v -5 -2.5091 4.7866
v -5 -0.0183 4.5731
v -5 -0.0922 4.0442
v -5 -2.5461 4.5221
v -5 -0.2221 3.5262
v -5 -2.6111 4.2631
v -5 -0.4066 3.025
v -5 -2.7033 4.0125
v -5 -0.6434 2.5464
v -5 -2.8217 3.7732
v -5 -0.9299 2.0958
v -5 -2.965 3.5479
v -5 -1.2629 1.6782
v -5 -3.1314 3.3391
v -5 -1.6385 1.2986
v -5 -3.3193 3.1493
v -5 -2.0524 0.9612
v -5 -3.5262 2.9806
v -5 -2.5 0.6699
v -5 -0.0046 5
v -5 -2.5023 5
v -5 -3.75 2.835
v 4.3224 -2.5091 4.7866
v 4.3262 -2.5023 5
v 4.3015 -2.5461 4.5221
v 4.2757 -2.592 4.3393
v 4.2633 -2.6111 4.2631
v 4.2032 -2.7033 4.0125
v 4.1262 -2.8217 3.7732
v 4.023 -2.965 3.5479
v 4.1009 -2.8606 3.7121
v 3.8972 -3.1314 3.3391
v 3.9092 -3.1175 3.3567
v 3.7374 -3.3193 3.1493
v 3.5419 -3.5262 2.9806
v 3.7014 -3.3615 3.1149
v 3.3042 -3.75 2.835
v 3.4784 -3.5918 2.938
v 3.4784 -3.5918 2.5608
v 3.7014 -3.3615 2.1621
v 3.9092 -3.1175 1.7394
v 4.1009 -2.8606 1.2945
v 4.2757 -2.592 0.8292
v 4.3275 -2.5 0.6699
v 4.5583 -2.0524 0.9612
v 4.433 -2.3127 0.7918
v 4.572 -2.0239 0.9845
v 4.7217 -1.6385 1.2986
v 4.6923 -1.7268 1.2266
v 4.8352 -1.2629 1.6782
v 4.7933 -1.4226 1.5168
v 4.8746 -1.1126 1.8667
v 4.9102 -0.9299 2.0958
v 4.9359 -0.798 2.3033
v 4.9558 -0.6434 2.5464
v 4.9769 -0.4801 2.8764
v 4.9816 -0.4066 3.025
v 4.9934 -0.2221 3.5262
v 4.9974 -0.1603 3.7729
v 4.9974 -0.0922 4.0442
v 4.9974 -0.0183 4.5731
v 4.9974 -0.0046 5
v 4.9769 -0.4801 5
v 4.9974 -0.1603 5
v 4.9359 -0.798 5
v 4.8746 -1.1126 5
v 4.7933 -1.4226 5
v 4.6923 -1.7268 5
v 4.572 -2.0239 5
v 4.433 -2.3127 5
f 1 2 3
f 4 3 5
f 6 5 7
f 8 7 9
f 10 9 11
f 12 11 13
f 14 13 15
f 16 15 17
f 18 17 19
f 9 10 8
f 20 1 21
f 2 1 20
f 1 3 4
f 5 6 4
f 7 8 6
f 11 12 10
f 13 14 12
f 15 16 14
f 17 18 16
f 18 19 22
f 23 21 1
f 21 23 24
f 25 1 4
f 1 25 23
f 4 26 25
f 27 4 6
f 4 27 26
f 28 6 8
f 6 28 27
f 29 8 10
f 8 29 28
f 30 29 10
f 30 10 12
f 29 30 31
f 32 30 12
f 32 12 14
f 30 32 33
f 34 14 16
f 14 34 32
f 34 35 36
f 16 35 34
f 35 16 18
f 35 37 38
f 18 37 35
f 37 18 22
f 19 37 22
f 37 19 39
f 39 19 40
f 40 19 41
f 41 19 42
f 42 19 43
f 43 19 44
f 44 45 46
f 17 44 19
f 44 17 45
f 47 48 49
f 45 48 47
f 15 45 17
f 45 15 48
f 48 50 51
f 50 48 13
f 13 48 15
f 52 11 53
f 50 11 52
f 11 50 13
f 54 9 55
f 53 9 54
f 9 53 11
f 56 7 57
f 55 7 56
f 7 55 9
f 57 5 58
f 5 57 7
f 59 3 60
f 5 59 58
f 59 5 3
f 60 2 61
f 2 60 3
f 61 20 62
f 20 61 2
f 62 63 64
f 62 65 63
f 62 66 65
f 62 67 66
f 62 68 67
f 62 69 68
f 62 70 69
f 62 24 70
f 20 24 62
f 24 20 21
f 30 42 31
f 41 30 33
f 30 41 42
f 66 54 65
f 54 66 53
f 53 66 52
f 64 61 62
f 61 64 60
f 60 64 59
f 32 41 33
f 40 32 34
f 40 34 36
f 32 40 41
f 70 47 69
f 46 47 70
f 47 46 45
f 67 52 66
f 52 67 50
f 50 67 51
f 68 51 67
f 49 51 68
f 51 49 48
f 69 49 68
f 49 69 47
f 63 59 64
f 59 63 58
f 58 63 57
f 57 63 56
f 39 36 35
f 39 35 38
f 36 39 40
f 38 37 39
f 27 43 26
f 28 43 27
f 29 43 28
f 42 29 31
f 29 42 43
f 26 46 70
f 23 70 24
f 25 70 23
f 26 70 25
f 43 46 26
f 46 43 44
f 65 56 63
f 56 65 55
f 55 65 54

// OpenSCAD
// Generated by SolidPython 1.1.3 on 2025-02-20 03:32:17
$fn=50;


intersection() {
	rotate(a = 90, v = [0, 1, 0]) {
		translate(v = [-5.0000000000, -5.0000000000, -5.0000000000]) {
			linear_extrude(height = 10) {
				polygon(points = [[4.3301270189, 2.5000000000], [4.0387948484, 2.9475644476], [3.7013899854, 3.3615044513], [3.3217613875, 3.7370979763], [2.9042396813, 4.0700604263], [2.4535877600, 4.3565935206], [1.9749464512, 4.5934286231], [1.4737758721, 4.7778640289], [0.9557931435, 4.9077957850], [0.4269071715, 4.9817416901], [-0.1068487589, 4.9988582039], [-0.6393858084, 4.9589500691], [-1.1646290421, 4.8624725392], [-1.6765867295, 4.7105261849], [-2.1694186956, 4.5048443395], [-2.6375029425, 4.2477733259], [-3.0754997831, 3.9422456905], [-3.4784127530, 3.5917467505], [-3.8416456087, 3.2002748347], [-4.1610547586, 2.7722956725], [-4.4329965319, 2.3126914512], [-4.6543687432, 1.8267051218], [-4.8226460815, 1.3198805903], [-4.9359089171, 0.7979994752], [-4.9928652003, 0.2670151533], [-4.9928652003, -0.2670151533], [-4.9359089171, -0.7979994752], [-4.8226460815, -1.3198805903], [-4.6543687432, -1.8267051218], [-4.4329965319, -2.3126914512], [-4.1610547586, -2.7722956725], [-3.8416456087, -3.2002748347], [-3.4784127530, -3.5917467505], [-3.0754997831, -3.9422456905], [-2.6375029425, -4.2477733259], [-2.1694186956, -4.5048443395], [-1.6765867295, -4.7105261849], [-1.1646290421, -4.8624725392], [-0.6393858084, -4.9589500691], [-0.1068487589, -4.9988582039], [0.4269071715, -4.9817416901], [0.9557931435, -4.9077957850], [1.4737758721, -4.7778640289], [1.9749464512, -4.5934286231], [2.4535877600, -4.3565935206], [2.9042396813, -4.0700604263], [3.3217613875, -3.7370979763], [3.7013899854, -3.3615044513], [4.0387948484, -2.9475644476], [4.3301270189, -2.5000000000], [2.1650635095, -1.2500000000], [2.0193974242, -1.4737822238], [1.8506949927, -1.6807522257], [1.6608806938, -1.8685489881], [1.4521198406, -2.0350302131], [1.2267938800, -2.1782967603], [0.9874732256, -2.2967143115], [0.7368879360, -2.3889320145], [0.4778965718, -2.4538978925], [0.2134535857, -2.4908708451], [-0.0534243795, -2.4994291020], [-0.3196929042, -2.4794750346], [-0.5823145210, -2.4312362696], [-0.8382933648, -2.3552630924], [-1.0847093478, -2.2524221698], [-1.3187514713, -2.1238866629], [-1.5377498915, -1.9711228453], [-1.7392063765, -1.7958733752], [-1.9208228043, -1.6001374173], [-2.0805273793, -1.3861478363], [-2.2164982659, -1.1563457256], [-2.3271843716, -0.9133525609], [-2.4113230407, -0.6599402952], [-2.4679544585, -0.3989997376], [-2.4964326001, -0.1335075766], [-2.4964326001, 0.1335075766], [-2.4679544585, 0.3989997376], [-2.4113230407, 0.6599402952], [-2.3271843716, 0.9133525609], [-2.2164982659, 1.1563457256], [-2.0805273793, 1.3861478363], [-1.9208228043, 1.6001374173], [-1.7392063765, 1.7958733752], [-1.5377498915, 1.9711228453], [-1.3187514713, 2.1238866629], [-1.0847093478, 2.2524221698], [-0.8382933648, 2.3552630924], [-0.5823145210, 2.4312362696], [-0.3196929042, 2.4794750346], [-0.0534243795, 2.4994291020], [0.2134535857, 2.4908708451], [0.4778965718, 2.4538978925], [0.7368879360, 2.3889320145], [0.9874732256, 2.2967143115], [1.2267938800, 2.1782967603], [1.4521198406, 2.0350302131], [1.6608806938, 1.8685489881], [1.8506949927, 1.6807522257], [2.0193974242, 1.4737822238], [2.1650635095, 1.2500000000]]);
			}
		}
	}
	translate(v = [-5.0000000000, -5.0000000000, -5.0000000000]) {
		linear_extrude(height = 10) {
			polygon(points = [[5.0000000000, 10.0000000000], [5.3203510999, 9.9897269638], [5.6393858084, 9.9589500691], [5.9557931435, 9.9077957850], [6.2682729195, 9.8364743152], [6.5755410901, 9.7452787351], [6.8763350244, 9.6345837867], [7.1694186956, 9.5048443395], [7.4535877600, 9.3565935206], [7.7276745061, 9.1904405245], [7.9905526525, 9.0070681093], [8.2411419765, 8.8072297918], [8.4784127530, 8.5917467505], [8.7013899854, 8.3615044513], [8.9091574123, 8.1174490093], [9.1008612730, 7.8605833006], [9.2757138150, 7.5919628416], [9.4329965319, 7.3126914512], [9.5720631151, 7.0239167156], [9.6923421102, 6.7268252721], [9.7933392652, 6.4226379332], [9.8746395609, 6.1126046698], [9.9359089171, 5.7979994752], [9.9768955647, 5.4801151295], [9.9974310810, 5.1602578879], [9.9974310810, 4.8397421121], [9.9768955647, 4.5198848705], [9.9359089171, 4.2020005248], [9.8746395609, 3.8873953302], [9.7933392652, 3.5773620668], [9.6923421102, 3.2731747279], [9.5720631151, 2.9760832844], [9.4329965319, 2.6873085488], [9.2757138150, 2.4080371584], [9.1008612730, 2.1394166994], [8.9091574123, 1.8825509907], [8.7013899854, 1.6384955487], [8.4784127530, 1.4082532495], [8.2411419765, 1.1927702082], [7.9905526525, 0.9929318907], [7.7276745061, 0.8095594755], [7.4535877600, 0.6434064794], [7.1694186956, 0.4951556605], [6.8763350244, 0.3654162133], [6.5755410901, 0.2547212649], [6.2682729195, 0.1635256848], [5.9557931435, 0.0922042150], [5.6393858084, 0.0410499309], [5.3203510999, 0.0102730362], [5.0000000000, 0.0000000000], [0, 0], [0, 10]]);
		}
	}
}
/***********************************************
*********      SolidPython code:      **********
************************************************
 
from solid import *
from solid.utils import *

import math
import matplotlib.pyplot as plt
import subprocess
import os

class Hole:
    def __init__(self, x, y, radius):
        """
        Hole defined by:
        :param x: x dimension for center point of the circle as a ratio of letter height
        :param y: y dimension for center point of the circle as a ratio of letter height
        :param radius: radius of circle as a ratio of letter height
        """
        self.x = x
        self.y = y
        self.radius = radius

class Letter3D:
    def __init__(self, name, outer_shape_points, height, holes=None):
        """
        3D Letter defined by:
        :param name: name of letter
        :param outer_shape_points: points defining the outer shape of the letter
        :param heigh: size of cube that letter fits inside
        :param holes: list of Holes
        """
        self.name = name
        self.outer_shape_points = outer_shape_points
        self.holes = holes if holes is None else []
        self.height = height
        self.shape = self.generate()


    def generate(self):
        shape = polygon(points=self.outer_shape_points)

        if self.holes:
            for hole in self.holes:
                circle_hole = circle(r=hole.radius*self.height)
                positioned_hole = translate([hole.x*self.height, hole.y*self.height])(circle_hole)
                shape = difference()(shape, positioned_hole)
        
        shape_3d = linear_extrude(height=self.height)(shape)
        shape_3d = translate([-self.height/2, -self.height/2, -self.height/2])(shape_3d)
        return shape_3d
    
    def render(self):
        scad_render_to_file(self.shape, f"output/{self.name}.scad", file_header='$fn=50;')
        subprocess.run(["C:\\Program Files\\OpenSCAD\\openscad.exe", "-o", f"output\\{self.name}.stl", f"output\\{self.name}.scad"])


class TwoLetter3D:
    def __init__(self, height, letterA, letterB, letterA_face, letterB_face):
        self.height = height
        self.letterA = letterA
        self.letterB = letterB
        self.letterA_face = letterA_face
        self.letterB_face = letterB_face

    def call_letter_generation(self, letter):
        letter = letter.upper()
        function_name = f"letter_{letter}"
        func = globals().get(function_name)
        if func is None:
            raise ValueError(f"No letter generation function defined for letter '{letter}'.")
        else:
            print(func)
        return func(self.height)
    
    def rotate_object(self, face, shape):
        face = face.lower()
        if face == "z":
            return shape
        if face == "x":
            return rotate(a=90, v=[0,1,0])(shape)
        if face == "y":
            return rotate(a=-90, v=[1,0,0])(shape)
        else:
            raise ValueError("Face must be one of 'x', 'y', or 'z'.")

    def render(self):
        letterA3D = self.call_letter_generation(self.letterA)
        letterA3D = self.rotate_object(self.letterA_face, letterA3D)

        letterB3D = self.call_letter_generation(self.letterB)
        # letterB3D = self.rotate_object(self.letterB_face, letterB3D)

        combined = intersection()(letterA3D, letterB3D)
        file_name = self.letterA + self.letterB
        scad_render_to_file(combined, f"output/{file_name}.scad", file_header='$fn=50;')
        subprocess.run(["C:\\Program Files\\OpenSCAD\\openscad.exe", "-o", f"output\\{file_name}.stl", f"output\\{file_name}.scad"])
    
                

def arc_points(radius, start_angle, end_angle, center=[0,0], num_points=50):
    angles = [start_angle + i * (end_angle - start_angle) / (num_points - 1)
              for i in range(num_points)]
    points = [
        (center[0] + radius * math.cos(math.radians(angle)),
         center[1] + radius * math.sin(math.radians(angle)))
        for angle in angles
    ]
    return points

def letter_A(h):
    shape_points = [(0,0), (h/2, h), (h, 0), (5/6*h, 0), (2/3*h, 1/3*h), (1/3*h, 1/3*h), (h/6, 0)]
    holes = [Hole(1/2, 7/12, 1/6)]
    A = Letter3D("A", shape_points, h, holes)
    return A.generate()


def letter_B(h):
    top_arc_points = arc_points(h/4, 90, -90, center=[3/4*h, 3/4*h])
    bottom_arc_points = arc_points(h/4, 90, -90, center=[3/4*h, h/4])
    other_points = [(0,0),(0,h)]

    shape_points = top_arc_points + bottom_arc_points + other_points
    holes = [Hole(1/2, 3/4, 1/6), Hole(1/2, 1/4, 1/6)]
    B = Letter3D("B", shape_points, h, holes)
    return B.generate()

def letter_C(h):
    outer_arc_points = arc_points(h/2, 30, 330)
    inner_arc_points = arc_points(h/4, 30, 330)[::-1]
    shape_points = outer_arc_points + inner_arc_points
    C = Letter3D("C", shape_points, h)
    return C.generate()


def letter_D(h):
    outer_arc_points = arc_points(h/2, 90, -90, center= [h/2, h/2])
    shape_points = outer_arc_points + [(0,0), (0, h)]
    holes = [Hole(1/2, 1/2, 1/6)]
    D = Letter3D("D", shape_points, h, holes)
    return D.generate()

def letter_E(h):
    points = [(0,0), (h,0), (h,h/5), (h/5,h/5), (h/5,2/5*h), (3/4*h,2/5*h), (3/4*h,3/5*h), (h/5,3/5*h), (h/5,4/5*h), (h,4/5*h), (h,h), (0,h)]
    E = Letter3D("E", points, h)
    return E.generate()

def letter_F(h):
    points = [(0,0), (h/5,0), (h/5,2/5*h), (3/4*h,2/5*h), (3/4*h,3/5*h), (h/5,3/5*h), (h/5,4/5*h), (h,4/5*h), (h,h), (0,h)]
    F = Letter3D("F", points, h)
    return F.generate()

if __name__ == "__main__":
    os.makedirs("output", exist_ok=True)

    # Just the letter B
    # letter_F(10)
    shape = TwoLetter3D(10, "C", "D", "x", "y")
    shape.render()
 
 
************************************************/
